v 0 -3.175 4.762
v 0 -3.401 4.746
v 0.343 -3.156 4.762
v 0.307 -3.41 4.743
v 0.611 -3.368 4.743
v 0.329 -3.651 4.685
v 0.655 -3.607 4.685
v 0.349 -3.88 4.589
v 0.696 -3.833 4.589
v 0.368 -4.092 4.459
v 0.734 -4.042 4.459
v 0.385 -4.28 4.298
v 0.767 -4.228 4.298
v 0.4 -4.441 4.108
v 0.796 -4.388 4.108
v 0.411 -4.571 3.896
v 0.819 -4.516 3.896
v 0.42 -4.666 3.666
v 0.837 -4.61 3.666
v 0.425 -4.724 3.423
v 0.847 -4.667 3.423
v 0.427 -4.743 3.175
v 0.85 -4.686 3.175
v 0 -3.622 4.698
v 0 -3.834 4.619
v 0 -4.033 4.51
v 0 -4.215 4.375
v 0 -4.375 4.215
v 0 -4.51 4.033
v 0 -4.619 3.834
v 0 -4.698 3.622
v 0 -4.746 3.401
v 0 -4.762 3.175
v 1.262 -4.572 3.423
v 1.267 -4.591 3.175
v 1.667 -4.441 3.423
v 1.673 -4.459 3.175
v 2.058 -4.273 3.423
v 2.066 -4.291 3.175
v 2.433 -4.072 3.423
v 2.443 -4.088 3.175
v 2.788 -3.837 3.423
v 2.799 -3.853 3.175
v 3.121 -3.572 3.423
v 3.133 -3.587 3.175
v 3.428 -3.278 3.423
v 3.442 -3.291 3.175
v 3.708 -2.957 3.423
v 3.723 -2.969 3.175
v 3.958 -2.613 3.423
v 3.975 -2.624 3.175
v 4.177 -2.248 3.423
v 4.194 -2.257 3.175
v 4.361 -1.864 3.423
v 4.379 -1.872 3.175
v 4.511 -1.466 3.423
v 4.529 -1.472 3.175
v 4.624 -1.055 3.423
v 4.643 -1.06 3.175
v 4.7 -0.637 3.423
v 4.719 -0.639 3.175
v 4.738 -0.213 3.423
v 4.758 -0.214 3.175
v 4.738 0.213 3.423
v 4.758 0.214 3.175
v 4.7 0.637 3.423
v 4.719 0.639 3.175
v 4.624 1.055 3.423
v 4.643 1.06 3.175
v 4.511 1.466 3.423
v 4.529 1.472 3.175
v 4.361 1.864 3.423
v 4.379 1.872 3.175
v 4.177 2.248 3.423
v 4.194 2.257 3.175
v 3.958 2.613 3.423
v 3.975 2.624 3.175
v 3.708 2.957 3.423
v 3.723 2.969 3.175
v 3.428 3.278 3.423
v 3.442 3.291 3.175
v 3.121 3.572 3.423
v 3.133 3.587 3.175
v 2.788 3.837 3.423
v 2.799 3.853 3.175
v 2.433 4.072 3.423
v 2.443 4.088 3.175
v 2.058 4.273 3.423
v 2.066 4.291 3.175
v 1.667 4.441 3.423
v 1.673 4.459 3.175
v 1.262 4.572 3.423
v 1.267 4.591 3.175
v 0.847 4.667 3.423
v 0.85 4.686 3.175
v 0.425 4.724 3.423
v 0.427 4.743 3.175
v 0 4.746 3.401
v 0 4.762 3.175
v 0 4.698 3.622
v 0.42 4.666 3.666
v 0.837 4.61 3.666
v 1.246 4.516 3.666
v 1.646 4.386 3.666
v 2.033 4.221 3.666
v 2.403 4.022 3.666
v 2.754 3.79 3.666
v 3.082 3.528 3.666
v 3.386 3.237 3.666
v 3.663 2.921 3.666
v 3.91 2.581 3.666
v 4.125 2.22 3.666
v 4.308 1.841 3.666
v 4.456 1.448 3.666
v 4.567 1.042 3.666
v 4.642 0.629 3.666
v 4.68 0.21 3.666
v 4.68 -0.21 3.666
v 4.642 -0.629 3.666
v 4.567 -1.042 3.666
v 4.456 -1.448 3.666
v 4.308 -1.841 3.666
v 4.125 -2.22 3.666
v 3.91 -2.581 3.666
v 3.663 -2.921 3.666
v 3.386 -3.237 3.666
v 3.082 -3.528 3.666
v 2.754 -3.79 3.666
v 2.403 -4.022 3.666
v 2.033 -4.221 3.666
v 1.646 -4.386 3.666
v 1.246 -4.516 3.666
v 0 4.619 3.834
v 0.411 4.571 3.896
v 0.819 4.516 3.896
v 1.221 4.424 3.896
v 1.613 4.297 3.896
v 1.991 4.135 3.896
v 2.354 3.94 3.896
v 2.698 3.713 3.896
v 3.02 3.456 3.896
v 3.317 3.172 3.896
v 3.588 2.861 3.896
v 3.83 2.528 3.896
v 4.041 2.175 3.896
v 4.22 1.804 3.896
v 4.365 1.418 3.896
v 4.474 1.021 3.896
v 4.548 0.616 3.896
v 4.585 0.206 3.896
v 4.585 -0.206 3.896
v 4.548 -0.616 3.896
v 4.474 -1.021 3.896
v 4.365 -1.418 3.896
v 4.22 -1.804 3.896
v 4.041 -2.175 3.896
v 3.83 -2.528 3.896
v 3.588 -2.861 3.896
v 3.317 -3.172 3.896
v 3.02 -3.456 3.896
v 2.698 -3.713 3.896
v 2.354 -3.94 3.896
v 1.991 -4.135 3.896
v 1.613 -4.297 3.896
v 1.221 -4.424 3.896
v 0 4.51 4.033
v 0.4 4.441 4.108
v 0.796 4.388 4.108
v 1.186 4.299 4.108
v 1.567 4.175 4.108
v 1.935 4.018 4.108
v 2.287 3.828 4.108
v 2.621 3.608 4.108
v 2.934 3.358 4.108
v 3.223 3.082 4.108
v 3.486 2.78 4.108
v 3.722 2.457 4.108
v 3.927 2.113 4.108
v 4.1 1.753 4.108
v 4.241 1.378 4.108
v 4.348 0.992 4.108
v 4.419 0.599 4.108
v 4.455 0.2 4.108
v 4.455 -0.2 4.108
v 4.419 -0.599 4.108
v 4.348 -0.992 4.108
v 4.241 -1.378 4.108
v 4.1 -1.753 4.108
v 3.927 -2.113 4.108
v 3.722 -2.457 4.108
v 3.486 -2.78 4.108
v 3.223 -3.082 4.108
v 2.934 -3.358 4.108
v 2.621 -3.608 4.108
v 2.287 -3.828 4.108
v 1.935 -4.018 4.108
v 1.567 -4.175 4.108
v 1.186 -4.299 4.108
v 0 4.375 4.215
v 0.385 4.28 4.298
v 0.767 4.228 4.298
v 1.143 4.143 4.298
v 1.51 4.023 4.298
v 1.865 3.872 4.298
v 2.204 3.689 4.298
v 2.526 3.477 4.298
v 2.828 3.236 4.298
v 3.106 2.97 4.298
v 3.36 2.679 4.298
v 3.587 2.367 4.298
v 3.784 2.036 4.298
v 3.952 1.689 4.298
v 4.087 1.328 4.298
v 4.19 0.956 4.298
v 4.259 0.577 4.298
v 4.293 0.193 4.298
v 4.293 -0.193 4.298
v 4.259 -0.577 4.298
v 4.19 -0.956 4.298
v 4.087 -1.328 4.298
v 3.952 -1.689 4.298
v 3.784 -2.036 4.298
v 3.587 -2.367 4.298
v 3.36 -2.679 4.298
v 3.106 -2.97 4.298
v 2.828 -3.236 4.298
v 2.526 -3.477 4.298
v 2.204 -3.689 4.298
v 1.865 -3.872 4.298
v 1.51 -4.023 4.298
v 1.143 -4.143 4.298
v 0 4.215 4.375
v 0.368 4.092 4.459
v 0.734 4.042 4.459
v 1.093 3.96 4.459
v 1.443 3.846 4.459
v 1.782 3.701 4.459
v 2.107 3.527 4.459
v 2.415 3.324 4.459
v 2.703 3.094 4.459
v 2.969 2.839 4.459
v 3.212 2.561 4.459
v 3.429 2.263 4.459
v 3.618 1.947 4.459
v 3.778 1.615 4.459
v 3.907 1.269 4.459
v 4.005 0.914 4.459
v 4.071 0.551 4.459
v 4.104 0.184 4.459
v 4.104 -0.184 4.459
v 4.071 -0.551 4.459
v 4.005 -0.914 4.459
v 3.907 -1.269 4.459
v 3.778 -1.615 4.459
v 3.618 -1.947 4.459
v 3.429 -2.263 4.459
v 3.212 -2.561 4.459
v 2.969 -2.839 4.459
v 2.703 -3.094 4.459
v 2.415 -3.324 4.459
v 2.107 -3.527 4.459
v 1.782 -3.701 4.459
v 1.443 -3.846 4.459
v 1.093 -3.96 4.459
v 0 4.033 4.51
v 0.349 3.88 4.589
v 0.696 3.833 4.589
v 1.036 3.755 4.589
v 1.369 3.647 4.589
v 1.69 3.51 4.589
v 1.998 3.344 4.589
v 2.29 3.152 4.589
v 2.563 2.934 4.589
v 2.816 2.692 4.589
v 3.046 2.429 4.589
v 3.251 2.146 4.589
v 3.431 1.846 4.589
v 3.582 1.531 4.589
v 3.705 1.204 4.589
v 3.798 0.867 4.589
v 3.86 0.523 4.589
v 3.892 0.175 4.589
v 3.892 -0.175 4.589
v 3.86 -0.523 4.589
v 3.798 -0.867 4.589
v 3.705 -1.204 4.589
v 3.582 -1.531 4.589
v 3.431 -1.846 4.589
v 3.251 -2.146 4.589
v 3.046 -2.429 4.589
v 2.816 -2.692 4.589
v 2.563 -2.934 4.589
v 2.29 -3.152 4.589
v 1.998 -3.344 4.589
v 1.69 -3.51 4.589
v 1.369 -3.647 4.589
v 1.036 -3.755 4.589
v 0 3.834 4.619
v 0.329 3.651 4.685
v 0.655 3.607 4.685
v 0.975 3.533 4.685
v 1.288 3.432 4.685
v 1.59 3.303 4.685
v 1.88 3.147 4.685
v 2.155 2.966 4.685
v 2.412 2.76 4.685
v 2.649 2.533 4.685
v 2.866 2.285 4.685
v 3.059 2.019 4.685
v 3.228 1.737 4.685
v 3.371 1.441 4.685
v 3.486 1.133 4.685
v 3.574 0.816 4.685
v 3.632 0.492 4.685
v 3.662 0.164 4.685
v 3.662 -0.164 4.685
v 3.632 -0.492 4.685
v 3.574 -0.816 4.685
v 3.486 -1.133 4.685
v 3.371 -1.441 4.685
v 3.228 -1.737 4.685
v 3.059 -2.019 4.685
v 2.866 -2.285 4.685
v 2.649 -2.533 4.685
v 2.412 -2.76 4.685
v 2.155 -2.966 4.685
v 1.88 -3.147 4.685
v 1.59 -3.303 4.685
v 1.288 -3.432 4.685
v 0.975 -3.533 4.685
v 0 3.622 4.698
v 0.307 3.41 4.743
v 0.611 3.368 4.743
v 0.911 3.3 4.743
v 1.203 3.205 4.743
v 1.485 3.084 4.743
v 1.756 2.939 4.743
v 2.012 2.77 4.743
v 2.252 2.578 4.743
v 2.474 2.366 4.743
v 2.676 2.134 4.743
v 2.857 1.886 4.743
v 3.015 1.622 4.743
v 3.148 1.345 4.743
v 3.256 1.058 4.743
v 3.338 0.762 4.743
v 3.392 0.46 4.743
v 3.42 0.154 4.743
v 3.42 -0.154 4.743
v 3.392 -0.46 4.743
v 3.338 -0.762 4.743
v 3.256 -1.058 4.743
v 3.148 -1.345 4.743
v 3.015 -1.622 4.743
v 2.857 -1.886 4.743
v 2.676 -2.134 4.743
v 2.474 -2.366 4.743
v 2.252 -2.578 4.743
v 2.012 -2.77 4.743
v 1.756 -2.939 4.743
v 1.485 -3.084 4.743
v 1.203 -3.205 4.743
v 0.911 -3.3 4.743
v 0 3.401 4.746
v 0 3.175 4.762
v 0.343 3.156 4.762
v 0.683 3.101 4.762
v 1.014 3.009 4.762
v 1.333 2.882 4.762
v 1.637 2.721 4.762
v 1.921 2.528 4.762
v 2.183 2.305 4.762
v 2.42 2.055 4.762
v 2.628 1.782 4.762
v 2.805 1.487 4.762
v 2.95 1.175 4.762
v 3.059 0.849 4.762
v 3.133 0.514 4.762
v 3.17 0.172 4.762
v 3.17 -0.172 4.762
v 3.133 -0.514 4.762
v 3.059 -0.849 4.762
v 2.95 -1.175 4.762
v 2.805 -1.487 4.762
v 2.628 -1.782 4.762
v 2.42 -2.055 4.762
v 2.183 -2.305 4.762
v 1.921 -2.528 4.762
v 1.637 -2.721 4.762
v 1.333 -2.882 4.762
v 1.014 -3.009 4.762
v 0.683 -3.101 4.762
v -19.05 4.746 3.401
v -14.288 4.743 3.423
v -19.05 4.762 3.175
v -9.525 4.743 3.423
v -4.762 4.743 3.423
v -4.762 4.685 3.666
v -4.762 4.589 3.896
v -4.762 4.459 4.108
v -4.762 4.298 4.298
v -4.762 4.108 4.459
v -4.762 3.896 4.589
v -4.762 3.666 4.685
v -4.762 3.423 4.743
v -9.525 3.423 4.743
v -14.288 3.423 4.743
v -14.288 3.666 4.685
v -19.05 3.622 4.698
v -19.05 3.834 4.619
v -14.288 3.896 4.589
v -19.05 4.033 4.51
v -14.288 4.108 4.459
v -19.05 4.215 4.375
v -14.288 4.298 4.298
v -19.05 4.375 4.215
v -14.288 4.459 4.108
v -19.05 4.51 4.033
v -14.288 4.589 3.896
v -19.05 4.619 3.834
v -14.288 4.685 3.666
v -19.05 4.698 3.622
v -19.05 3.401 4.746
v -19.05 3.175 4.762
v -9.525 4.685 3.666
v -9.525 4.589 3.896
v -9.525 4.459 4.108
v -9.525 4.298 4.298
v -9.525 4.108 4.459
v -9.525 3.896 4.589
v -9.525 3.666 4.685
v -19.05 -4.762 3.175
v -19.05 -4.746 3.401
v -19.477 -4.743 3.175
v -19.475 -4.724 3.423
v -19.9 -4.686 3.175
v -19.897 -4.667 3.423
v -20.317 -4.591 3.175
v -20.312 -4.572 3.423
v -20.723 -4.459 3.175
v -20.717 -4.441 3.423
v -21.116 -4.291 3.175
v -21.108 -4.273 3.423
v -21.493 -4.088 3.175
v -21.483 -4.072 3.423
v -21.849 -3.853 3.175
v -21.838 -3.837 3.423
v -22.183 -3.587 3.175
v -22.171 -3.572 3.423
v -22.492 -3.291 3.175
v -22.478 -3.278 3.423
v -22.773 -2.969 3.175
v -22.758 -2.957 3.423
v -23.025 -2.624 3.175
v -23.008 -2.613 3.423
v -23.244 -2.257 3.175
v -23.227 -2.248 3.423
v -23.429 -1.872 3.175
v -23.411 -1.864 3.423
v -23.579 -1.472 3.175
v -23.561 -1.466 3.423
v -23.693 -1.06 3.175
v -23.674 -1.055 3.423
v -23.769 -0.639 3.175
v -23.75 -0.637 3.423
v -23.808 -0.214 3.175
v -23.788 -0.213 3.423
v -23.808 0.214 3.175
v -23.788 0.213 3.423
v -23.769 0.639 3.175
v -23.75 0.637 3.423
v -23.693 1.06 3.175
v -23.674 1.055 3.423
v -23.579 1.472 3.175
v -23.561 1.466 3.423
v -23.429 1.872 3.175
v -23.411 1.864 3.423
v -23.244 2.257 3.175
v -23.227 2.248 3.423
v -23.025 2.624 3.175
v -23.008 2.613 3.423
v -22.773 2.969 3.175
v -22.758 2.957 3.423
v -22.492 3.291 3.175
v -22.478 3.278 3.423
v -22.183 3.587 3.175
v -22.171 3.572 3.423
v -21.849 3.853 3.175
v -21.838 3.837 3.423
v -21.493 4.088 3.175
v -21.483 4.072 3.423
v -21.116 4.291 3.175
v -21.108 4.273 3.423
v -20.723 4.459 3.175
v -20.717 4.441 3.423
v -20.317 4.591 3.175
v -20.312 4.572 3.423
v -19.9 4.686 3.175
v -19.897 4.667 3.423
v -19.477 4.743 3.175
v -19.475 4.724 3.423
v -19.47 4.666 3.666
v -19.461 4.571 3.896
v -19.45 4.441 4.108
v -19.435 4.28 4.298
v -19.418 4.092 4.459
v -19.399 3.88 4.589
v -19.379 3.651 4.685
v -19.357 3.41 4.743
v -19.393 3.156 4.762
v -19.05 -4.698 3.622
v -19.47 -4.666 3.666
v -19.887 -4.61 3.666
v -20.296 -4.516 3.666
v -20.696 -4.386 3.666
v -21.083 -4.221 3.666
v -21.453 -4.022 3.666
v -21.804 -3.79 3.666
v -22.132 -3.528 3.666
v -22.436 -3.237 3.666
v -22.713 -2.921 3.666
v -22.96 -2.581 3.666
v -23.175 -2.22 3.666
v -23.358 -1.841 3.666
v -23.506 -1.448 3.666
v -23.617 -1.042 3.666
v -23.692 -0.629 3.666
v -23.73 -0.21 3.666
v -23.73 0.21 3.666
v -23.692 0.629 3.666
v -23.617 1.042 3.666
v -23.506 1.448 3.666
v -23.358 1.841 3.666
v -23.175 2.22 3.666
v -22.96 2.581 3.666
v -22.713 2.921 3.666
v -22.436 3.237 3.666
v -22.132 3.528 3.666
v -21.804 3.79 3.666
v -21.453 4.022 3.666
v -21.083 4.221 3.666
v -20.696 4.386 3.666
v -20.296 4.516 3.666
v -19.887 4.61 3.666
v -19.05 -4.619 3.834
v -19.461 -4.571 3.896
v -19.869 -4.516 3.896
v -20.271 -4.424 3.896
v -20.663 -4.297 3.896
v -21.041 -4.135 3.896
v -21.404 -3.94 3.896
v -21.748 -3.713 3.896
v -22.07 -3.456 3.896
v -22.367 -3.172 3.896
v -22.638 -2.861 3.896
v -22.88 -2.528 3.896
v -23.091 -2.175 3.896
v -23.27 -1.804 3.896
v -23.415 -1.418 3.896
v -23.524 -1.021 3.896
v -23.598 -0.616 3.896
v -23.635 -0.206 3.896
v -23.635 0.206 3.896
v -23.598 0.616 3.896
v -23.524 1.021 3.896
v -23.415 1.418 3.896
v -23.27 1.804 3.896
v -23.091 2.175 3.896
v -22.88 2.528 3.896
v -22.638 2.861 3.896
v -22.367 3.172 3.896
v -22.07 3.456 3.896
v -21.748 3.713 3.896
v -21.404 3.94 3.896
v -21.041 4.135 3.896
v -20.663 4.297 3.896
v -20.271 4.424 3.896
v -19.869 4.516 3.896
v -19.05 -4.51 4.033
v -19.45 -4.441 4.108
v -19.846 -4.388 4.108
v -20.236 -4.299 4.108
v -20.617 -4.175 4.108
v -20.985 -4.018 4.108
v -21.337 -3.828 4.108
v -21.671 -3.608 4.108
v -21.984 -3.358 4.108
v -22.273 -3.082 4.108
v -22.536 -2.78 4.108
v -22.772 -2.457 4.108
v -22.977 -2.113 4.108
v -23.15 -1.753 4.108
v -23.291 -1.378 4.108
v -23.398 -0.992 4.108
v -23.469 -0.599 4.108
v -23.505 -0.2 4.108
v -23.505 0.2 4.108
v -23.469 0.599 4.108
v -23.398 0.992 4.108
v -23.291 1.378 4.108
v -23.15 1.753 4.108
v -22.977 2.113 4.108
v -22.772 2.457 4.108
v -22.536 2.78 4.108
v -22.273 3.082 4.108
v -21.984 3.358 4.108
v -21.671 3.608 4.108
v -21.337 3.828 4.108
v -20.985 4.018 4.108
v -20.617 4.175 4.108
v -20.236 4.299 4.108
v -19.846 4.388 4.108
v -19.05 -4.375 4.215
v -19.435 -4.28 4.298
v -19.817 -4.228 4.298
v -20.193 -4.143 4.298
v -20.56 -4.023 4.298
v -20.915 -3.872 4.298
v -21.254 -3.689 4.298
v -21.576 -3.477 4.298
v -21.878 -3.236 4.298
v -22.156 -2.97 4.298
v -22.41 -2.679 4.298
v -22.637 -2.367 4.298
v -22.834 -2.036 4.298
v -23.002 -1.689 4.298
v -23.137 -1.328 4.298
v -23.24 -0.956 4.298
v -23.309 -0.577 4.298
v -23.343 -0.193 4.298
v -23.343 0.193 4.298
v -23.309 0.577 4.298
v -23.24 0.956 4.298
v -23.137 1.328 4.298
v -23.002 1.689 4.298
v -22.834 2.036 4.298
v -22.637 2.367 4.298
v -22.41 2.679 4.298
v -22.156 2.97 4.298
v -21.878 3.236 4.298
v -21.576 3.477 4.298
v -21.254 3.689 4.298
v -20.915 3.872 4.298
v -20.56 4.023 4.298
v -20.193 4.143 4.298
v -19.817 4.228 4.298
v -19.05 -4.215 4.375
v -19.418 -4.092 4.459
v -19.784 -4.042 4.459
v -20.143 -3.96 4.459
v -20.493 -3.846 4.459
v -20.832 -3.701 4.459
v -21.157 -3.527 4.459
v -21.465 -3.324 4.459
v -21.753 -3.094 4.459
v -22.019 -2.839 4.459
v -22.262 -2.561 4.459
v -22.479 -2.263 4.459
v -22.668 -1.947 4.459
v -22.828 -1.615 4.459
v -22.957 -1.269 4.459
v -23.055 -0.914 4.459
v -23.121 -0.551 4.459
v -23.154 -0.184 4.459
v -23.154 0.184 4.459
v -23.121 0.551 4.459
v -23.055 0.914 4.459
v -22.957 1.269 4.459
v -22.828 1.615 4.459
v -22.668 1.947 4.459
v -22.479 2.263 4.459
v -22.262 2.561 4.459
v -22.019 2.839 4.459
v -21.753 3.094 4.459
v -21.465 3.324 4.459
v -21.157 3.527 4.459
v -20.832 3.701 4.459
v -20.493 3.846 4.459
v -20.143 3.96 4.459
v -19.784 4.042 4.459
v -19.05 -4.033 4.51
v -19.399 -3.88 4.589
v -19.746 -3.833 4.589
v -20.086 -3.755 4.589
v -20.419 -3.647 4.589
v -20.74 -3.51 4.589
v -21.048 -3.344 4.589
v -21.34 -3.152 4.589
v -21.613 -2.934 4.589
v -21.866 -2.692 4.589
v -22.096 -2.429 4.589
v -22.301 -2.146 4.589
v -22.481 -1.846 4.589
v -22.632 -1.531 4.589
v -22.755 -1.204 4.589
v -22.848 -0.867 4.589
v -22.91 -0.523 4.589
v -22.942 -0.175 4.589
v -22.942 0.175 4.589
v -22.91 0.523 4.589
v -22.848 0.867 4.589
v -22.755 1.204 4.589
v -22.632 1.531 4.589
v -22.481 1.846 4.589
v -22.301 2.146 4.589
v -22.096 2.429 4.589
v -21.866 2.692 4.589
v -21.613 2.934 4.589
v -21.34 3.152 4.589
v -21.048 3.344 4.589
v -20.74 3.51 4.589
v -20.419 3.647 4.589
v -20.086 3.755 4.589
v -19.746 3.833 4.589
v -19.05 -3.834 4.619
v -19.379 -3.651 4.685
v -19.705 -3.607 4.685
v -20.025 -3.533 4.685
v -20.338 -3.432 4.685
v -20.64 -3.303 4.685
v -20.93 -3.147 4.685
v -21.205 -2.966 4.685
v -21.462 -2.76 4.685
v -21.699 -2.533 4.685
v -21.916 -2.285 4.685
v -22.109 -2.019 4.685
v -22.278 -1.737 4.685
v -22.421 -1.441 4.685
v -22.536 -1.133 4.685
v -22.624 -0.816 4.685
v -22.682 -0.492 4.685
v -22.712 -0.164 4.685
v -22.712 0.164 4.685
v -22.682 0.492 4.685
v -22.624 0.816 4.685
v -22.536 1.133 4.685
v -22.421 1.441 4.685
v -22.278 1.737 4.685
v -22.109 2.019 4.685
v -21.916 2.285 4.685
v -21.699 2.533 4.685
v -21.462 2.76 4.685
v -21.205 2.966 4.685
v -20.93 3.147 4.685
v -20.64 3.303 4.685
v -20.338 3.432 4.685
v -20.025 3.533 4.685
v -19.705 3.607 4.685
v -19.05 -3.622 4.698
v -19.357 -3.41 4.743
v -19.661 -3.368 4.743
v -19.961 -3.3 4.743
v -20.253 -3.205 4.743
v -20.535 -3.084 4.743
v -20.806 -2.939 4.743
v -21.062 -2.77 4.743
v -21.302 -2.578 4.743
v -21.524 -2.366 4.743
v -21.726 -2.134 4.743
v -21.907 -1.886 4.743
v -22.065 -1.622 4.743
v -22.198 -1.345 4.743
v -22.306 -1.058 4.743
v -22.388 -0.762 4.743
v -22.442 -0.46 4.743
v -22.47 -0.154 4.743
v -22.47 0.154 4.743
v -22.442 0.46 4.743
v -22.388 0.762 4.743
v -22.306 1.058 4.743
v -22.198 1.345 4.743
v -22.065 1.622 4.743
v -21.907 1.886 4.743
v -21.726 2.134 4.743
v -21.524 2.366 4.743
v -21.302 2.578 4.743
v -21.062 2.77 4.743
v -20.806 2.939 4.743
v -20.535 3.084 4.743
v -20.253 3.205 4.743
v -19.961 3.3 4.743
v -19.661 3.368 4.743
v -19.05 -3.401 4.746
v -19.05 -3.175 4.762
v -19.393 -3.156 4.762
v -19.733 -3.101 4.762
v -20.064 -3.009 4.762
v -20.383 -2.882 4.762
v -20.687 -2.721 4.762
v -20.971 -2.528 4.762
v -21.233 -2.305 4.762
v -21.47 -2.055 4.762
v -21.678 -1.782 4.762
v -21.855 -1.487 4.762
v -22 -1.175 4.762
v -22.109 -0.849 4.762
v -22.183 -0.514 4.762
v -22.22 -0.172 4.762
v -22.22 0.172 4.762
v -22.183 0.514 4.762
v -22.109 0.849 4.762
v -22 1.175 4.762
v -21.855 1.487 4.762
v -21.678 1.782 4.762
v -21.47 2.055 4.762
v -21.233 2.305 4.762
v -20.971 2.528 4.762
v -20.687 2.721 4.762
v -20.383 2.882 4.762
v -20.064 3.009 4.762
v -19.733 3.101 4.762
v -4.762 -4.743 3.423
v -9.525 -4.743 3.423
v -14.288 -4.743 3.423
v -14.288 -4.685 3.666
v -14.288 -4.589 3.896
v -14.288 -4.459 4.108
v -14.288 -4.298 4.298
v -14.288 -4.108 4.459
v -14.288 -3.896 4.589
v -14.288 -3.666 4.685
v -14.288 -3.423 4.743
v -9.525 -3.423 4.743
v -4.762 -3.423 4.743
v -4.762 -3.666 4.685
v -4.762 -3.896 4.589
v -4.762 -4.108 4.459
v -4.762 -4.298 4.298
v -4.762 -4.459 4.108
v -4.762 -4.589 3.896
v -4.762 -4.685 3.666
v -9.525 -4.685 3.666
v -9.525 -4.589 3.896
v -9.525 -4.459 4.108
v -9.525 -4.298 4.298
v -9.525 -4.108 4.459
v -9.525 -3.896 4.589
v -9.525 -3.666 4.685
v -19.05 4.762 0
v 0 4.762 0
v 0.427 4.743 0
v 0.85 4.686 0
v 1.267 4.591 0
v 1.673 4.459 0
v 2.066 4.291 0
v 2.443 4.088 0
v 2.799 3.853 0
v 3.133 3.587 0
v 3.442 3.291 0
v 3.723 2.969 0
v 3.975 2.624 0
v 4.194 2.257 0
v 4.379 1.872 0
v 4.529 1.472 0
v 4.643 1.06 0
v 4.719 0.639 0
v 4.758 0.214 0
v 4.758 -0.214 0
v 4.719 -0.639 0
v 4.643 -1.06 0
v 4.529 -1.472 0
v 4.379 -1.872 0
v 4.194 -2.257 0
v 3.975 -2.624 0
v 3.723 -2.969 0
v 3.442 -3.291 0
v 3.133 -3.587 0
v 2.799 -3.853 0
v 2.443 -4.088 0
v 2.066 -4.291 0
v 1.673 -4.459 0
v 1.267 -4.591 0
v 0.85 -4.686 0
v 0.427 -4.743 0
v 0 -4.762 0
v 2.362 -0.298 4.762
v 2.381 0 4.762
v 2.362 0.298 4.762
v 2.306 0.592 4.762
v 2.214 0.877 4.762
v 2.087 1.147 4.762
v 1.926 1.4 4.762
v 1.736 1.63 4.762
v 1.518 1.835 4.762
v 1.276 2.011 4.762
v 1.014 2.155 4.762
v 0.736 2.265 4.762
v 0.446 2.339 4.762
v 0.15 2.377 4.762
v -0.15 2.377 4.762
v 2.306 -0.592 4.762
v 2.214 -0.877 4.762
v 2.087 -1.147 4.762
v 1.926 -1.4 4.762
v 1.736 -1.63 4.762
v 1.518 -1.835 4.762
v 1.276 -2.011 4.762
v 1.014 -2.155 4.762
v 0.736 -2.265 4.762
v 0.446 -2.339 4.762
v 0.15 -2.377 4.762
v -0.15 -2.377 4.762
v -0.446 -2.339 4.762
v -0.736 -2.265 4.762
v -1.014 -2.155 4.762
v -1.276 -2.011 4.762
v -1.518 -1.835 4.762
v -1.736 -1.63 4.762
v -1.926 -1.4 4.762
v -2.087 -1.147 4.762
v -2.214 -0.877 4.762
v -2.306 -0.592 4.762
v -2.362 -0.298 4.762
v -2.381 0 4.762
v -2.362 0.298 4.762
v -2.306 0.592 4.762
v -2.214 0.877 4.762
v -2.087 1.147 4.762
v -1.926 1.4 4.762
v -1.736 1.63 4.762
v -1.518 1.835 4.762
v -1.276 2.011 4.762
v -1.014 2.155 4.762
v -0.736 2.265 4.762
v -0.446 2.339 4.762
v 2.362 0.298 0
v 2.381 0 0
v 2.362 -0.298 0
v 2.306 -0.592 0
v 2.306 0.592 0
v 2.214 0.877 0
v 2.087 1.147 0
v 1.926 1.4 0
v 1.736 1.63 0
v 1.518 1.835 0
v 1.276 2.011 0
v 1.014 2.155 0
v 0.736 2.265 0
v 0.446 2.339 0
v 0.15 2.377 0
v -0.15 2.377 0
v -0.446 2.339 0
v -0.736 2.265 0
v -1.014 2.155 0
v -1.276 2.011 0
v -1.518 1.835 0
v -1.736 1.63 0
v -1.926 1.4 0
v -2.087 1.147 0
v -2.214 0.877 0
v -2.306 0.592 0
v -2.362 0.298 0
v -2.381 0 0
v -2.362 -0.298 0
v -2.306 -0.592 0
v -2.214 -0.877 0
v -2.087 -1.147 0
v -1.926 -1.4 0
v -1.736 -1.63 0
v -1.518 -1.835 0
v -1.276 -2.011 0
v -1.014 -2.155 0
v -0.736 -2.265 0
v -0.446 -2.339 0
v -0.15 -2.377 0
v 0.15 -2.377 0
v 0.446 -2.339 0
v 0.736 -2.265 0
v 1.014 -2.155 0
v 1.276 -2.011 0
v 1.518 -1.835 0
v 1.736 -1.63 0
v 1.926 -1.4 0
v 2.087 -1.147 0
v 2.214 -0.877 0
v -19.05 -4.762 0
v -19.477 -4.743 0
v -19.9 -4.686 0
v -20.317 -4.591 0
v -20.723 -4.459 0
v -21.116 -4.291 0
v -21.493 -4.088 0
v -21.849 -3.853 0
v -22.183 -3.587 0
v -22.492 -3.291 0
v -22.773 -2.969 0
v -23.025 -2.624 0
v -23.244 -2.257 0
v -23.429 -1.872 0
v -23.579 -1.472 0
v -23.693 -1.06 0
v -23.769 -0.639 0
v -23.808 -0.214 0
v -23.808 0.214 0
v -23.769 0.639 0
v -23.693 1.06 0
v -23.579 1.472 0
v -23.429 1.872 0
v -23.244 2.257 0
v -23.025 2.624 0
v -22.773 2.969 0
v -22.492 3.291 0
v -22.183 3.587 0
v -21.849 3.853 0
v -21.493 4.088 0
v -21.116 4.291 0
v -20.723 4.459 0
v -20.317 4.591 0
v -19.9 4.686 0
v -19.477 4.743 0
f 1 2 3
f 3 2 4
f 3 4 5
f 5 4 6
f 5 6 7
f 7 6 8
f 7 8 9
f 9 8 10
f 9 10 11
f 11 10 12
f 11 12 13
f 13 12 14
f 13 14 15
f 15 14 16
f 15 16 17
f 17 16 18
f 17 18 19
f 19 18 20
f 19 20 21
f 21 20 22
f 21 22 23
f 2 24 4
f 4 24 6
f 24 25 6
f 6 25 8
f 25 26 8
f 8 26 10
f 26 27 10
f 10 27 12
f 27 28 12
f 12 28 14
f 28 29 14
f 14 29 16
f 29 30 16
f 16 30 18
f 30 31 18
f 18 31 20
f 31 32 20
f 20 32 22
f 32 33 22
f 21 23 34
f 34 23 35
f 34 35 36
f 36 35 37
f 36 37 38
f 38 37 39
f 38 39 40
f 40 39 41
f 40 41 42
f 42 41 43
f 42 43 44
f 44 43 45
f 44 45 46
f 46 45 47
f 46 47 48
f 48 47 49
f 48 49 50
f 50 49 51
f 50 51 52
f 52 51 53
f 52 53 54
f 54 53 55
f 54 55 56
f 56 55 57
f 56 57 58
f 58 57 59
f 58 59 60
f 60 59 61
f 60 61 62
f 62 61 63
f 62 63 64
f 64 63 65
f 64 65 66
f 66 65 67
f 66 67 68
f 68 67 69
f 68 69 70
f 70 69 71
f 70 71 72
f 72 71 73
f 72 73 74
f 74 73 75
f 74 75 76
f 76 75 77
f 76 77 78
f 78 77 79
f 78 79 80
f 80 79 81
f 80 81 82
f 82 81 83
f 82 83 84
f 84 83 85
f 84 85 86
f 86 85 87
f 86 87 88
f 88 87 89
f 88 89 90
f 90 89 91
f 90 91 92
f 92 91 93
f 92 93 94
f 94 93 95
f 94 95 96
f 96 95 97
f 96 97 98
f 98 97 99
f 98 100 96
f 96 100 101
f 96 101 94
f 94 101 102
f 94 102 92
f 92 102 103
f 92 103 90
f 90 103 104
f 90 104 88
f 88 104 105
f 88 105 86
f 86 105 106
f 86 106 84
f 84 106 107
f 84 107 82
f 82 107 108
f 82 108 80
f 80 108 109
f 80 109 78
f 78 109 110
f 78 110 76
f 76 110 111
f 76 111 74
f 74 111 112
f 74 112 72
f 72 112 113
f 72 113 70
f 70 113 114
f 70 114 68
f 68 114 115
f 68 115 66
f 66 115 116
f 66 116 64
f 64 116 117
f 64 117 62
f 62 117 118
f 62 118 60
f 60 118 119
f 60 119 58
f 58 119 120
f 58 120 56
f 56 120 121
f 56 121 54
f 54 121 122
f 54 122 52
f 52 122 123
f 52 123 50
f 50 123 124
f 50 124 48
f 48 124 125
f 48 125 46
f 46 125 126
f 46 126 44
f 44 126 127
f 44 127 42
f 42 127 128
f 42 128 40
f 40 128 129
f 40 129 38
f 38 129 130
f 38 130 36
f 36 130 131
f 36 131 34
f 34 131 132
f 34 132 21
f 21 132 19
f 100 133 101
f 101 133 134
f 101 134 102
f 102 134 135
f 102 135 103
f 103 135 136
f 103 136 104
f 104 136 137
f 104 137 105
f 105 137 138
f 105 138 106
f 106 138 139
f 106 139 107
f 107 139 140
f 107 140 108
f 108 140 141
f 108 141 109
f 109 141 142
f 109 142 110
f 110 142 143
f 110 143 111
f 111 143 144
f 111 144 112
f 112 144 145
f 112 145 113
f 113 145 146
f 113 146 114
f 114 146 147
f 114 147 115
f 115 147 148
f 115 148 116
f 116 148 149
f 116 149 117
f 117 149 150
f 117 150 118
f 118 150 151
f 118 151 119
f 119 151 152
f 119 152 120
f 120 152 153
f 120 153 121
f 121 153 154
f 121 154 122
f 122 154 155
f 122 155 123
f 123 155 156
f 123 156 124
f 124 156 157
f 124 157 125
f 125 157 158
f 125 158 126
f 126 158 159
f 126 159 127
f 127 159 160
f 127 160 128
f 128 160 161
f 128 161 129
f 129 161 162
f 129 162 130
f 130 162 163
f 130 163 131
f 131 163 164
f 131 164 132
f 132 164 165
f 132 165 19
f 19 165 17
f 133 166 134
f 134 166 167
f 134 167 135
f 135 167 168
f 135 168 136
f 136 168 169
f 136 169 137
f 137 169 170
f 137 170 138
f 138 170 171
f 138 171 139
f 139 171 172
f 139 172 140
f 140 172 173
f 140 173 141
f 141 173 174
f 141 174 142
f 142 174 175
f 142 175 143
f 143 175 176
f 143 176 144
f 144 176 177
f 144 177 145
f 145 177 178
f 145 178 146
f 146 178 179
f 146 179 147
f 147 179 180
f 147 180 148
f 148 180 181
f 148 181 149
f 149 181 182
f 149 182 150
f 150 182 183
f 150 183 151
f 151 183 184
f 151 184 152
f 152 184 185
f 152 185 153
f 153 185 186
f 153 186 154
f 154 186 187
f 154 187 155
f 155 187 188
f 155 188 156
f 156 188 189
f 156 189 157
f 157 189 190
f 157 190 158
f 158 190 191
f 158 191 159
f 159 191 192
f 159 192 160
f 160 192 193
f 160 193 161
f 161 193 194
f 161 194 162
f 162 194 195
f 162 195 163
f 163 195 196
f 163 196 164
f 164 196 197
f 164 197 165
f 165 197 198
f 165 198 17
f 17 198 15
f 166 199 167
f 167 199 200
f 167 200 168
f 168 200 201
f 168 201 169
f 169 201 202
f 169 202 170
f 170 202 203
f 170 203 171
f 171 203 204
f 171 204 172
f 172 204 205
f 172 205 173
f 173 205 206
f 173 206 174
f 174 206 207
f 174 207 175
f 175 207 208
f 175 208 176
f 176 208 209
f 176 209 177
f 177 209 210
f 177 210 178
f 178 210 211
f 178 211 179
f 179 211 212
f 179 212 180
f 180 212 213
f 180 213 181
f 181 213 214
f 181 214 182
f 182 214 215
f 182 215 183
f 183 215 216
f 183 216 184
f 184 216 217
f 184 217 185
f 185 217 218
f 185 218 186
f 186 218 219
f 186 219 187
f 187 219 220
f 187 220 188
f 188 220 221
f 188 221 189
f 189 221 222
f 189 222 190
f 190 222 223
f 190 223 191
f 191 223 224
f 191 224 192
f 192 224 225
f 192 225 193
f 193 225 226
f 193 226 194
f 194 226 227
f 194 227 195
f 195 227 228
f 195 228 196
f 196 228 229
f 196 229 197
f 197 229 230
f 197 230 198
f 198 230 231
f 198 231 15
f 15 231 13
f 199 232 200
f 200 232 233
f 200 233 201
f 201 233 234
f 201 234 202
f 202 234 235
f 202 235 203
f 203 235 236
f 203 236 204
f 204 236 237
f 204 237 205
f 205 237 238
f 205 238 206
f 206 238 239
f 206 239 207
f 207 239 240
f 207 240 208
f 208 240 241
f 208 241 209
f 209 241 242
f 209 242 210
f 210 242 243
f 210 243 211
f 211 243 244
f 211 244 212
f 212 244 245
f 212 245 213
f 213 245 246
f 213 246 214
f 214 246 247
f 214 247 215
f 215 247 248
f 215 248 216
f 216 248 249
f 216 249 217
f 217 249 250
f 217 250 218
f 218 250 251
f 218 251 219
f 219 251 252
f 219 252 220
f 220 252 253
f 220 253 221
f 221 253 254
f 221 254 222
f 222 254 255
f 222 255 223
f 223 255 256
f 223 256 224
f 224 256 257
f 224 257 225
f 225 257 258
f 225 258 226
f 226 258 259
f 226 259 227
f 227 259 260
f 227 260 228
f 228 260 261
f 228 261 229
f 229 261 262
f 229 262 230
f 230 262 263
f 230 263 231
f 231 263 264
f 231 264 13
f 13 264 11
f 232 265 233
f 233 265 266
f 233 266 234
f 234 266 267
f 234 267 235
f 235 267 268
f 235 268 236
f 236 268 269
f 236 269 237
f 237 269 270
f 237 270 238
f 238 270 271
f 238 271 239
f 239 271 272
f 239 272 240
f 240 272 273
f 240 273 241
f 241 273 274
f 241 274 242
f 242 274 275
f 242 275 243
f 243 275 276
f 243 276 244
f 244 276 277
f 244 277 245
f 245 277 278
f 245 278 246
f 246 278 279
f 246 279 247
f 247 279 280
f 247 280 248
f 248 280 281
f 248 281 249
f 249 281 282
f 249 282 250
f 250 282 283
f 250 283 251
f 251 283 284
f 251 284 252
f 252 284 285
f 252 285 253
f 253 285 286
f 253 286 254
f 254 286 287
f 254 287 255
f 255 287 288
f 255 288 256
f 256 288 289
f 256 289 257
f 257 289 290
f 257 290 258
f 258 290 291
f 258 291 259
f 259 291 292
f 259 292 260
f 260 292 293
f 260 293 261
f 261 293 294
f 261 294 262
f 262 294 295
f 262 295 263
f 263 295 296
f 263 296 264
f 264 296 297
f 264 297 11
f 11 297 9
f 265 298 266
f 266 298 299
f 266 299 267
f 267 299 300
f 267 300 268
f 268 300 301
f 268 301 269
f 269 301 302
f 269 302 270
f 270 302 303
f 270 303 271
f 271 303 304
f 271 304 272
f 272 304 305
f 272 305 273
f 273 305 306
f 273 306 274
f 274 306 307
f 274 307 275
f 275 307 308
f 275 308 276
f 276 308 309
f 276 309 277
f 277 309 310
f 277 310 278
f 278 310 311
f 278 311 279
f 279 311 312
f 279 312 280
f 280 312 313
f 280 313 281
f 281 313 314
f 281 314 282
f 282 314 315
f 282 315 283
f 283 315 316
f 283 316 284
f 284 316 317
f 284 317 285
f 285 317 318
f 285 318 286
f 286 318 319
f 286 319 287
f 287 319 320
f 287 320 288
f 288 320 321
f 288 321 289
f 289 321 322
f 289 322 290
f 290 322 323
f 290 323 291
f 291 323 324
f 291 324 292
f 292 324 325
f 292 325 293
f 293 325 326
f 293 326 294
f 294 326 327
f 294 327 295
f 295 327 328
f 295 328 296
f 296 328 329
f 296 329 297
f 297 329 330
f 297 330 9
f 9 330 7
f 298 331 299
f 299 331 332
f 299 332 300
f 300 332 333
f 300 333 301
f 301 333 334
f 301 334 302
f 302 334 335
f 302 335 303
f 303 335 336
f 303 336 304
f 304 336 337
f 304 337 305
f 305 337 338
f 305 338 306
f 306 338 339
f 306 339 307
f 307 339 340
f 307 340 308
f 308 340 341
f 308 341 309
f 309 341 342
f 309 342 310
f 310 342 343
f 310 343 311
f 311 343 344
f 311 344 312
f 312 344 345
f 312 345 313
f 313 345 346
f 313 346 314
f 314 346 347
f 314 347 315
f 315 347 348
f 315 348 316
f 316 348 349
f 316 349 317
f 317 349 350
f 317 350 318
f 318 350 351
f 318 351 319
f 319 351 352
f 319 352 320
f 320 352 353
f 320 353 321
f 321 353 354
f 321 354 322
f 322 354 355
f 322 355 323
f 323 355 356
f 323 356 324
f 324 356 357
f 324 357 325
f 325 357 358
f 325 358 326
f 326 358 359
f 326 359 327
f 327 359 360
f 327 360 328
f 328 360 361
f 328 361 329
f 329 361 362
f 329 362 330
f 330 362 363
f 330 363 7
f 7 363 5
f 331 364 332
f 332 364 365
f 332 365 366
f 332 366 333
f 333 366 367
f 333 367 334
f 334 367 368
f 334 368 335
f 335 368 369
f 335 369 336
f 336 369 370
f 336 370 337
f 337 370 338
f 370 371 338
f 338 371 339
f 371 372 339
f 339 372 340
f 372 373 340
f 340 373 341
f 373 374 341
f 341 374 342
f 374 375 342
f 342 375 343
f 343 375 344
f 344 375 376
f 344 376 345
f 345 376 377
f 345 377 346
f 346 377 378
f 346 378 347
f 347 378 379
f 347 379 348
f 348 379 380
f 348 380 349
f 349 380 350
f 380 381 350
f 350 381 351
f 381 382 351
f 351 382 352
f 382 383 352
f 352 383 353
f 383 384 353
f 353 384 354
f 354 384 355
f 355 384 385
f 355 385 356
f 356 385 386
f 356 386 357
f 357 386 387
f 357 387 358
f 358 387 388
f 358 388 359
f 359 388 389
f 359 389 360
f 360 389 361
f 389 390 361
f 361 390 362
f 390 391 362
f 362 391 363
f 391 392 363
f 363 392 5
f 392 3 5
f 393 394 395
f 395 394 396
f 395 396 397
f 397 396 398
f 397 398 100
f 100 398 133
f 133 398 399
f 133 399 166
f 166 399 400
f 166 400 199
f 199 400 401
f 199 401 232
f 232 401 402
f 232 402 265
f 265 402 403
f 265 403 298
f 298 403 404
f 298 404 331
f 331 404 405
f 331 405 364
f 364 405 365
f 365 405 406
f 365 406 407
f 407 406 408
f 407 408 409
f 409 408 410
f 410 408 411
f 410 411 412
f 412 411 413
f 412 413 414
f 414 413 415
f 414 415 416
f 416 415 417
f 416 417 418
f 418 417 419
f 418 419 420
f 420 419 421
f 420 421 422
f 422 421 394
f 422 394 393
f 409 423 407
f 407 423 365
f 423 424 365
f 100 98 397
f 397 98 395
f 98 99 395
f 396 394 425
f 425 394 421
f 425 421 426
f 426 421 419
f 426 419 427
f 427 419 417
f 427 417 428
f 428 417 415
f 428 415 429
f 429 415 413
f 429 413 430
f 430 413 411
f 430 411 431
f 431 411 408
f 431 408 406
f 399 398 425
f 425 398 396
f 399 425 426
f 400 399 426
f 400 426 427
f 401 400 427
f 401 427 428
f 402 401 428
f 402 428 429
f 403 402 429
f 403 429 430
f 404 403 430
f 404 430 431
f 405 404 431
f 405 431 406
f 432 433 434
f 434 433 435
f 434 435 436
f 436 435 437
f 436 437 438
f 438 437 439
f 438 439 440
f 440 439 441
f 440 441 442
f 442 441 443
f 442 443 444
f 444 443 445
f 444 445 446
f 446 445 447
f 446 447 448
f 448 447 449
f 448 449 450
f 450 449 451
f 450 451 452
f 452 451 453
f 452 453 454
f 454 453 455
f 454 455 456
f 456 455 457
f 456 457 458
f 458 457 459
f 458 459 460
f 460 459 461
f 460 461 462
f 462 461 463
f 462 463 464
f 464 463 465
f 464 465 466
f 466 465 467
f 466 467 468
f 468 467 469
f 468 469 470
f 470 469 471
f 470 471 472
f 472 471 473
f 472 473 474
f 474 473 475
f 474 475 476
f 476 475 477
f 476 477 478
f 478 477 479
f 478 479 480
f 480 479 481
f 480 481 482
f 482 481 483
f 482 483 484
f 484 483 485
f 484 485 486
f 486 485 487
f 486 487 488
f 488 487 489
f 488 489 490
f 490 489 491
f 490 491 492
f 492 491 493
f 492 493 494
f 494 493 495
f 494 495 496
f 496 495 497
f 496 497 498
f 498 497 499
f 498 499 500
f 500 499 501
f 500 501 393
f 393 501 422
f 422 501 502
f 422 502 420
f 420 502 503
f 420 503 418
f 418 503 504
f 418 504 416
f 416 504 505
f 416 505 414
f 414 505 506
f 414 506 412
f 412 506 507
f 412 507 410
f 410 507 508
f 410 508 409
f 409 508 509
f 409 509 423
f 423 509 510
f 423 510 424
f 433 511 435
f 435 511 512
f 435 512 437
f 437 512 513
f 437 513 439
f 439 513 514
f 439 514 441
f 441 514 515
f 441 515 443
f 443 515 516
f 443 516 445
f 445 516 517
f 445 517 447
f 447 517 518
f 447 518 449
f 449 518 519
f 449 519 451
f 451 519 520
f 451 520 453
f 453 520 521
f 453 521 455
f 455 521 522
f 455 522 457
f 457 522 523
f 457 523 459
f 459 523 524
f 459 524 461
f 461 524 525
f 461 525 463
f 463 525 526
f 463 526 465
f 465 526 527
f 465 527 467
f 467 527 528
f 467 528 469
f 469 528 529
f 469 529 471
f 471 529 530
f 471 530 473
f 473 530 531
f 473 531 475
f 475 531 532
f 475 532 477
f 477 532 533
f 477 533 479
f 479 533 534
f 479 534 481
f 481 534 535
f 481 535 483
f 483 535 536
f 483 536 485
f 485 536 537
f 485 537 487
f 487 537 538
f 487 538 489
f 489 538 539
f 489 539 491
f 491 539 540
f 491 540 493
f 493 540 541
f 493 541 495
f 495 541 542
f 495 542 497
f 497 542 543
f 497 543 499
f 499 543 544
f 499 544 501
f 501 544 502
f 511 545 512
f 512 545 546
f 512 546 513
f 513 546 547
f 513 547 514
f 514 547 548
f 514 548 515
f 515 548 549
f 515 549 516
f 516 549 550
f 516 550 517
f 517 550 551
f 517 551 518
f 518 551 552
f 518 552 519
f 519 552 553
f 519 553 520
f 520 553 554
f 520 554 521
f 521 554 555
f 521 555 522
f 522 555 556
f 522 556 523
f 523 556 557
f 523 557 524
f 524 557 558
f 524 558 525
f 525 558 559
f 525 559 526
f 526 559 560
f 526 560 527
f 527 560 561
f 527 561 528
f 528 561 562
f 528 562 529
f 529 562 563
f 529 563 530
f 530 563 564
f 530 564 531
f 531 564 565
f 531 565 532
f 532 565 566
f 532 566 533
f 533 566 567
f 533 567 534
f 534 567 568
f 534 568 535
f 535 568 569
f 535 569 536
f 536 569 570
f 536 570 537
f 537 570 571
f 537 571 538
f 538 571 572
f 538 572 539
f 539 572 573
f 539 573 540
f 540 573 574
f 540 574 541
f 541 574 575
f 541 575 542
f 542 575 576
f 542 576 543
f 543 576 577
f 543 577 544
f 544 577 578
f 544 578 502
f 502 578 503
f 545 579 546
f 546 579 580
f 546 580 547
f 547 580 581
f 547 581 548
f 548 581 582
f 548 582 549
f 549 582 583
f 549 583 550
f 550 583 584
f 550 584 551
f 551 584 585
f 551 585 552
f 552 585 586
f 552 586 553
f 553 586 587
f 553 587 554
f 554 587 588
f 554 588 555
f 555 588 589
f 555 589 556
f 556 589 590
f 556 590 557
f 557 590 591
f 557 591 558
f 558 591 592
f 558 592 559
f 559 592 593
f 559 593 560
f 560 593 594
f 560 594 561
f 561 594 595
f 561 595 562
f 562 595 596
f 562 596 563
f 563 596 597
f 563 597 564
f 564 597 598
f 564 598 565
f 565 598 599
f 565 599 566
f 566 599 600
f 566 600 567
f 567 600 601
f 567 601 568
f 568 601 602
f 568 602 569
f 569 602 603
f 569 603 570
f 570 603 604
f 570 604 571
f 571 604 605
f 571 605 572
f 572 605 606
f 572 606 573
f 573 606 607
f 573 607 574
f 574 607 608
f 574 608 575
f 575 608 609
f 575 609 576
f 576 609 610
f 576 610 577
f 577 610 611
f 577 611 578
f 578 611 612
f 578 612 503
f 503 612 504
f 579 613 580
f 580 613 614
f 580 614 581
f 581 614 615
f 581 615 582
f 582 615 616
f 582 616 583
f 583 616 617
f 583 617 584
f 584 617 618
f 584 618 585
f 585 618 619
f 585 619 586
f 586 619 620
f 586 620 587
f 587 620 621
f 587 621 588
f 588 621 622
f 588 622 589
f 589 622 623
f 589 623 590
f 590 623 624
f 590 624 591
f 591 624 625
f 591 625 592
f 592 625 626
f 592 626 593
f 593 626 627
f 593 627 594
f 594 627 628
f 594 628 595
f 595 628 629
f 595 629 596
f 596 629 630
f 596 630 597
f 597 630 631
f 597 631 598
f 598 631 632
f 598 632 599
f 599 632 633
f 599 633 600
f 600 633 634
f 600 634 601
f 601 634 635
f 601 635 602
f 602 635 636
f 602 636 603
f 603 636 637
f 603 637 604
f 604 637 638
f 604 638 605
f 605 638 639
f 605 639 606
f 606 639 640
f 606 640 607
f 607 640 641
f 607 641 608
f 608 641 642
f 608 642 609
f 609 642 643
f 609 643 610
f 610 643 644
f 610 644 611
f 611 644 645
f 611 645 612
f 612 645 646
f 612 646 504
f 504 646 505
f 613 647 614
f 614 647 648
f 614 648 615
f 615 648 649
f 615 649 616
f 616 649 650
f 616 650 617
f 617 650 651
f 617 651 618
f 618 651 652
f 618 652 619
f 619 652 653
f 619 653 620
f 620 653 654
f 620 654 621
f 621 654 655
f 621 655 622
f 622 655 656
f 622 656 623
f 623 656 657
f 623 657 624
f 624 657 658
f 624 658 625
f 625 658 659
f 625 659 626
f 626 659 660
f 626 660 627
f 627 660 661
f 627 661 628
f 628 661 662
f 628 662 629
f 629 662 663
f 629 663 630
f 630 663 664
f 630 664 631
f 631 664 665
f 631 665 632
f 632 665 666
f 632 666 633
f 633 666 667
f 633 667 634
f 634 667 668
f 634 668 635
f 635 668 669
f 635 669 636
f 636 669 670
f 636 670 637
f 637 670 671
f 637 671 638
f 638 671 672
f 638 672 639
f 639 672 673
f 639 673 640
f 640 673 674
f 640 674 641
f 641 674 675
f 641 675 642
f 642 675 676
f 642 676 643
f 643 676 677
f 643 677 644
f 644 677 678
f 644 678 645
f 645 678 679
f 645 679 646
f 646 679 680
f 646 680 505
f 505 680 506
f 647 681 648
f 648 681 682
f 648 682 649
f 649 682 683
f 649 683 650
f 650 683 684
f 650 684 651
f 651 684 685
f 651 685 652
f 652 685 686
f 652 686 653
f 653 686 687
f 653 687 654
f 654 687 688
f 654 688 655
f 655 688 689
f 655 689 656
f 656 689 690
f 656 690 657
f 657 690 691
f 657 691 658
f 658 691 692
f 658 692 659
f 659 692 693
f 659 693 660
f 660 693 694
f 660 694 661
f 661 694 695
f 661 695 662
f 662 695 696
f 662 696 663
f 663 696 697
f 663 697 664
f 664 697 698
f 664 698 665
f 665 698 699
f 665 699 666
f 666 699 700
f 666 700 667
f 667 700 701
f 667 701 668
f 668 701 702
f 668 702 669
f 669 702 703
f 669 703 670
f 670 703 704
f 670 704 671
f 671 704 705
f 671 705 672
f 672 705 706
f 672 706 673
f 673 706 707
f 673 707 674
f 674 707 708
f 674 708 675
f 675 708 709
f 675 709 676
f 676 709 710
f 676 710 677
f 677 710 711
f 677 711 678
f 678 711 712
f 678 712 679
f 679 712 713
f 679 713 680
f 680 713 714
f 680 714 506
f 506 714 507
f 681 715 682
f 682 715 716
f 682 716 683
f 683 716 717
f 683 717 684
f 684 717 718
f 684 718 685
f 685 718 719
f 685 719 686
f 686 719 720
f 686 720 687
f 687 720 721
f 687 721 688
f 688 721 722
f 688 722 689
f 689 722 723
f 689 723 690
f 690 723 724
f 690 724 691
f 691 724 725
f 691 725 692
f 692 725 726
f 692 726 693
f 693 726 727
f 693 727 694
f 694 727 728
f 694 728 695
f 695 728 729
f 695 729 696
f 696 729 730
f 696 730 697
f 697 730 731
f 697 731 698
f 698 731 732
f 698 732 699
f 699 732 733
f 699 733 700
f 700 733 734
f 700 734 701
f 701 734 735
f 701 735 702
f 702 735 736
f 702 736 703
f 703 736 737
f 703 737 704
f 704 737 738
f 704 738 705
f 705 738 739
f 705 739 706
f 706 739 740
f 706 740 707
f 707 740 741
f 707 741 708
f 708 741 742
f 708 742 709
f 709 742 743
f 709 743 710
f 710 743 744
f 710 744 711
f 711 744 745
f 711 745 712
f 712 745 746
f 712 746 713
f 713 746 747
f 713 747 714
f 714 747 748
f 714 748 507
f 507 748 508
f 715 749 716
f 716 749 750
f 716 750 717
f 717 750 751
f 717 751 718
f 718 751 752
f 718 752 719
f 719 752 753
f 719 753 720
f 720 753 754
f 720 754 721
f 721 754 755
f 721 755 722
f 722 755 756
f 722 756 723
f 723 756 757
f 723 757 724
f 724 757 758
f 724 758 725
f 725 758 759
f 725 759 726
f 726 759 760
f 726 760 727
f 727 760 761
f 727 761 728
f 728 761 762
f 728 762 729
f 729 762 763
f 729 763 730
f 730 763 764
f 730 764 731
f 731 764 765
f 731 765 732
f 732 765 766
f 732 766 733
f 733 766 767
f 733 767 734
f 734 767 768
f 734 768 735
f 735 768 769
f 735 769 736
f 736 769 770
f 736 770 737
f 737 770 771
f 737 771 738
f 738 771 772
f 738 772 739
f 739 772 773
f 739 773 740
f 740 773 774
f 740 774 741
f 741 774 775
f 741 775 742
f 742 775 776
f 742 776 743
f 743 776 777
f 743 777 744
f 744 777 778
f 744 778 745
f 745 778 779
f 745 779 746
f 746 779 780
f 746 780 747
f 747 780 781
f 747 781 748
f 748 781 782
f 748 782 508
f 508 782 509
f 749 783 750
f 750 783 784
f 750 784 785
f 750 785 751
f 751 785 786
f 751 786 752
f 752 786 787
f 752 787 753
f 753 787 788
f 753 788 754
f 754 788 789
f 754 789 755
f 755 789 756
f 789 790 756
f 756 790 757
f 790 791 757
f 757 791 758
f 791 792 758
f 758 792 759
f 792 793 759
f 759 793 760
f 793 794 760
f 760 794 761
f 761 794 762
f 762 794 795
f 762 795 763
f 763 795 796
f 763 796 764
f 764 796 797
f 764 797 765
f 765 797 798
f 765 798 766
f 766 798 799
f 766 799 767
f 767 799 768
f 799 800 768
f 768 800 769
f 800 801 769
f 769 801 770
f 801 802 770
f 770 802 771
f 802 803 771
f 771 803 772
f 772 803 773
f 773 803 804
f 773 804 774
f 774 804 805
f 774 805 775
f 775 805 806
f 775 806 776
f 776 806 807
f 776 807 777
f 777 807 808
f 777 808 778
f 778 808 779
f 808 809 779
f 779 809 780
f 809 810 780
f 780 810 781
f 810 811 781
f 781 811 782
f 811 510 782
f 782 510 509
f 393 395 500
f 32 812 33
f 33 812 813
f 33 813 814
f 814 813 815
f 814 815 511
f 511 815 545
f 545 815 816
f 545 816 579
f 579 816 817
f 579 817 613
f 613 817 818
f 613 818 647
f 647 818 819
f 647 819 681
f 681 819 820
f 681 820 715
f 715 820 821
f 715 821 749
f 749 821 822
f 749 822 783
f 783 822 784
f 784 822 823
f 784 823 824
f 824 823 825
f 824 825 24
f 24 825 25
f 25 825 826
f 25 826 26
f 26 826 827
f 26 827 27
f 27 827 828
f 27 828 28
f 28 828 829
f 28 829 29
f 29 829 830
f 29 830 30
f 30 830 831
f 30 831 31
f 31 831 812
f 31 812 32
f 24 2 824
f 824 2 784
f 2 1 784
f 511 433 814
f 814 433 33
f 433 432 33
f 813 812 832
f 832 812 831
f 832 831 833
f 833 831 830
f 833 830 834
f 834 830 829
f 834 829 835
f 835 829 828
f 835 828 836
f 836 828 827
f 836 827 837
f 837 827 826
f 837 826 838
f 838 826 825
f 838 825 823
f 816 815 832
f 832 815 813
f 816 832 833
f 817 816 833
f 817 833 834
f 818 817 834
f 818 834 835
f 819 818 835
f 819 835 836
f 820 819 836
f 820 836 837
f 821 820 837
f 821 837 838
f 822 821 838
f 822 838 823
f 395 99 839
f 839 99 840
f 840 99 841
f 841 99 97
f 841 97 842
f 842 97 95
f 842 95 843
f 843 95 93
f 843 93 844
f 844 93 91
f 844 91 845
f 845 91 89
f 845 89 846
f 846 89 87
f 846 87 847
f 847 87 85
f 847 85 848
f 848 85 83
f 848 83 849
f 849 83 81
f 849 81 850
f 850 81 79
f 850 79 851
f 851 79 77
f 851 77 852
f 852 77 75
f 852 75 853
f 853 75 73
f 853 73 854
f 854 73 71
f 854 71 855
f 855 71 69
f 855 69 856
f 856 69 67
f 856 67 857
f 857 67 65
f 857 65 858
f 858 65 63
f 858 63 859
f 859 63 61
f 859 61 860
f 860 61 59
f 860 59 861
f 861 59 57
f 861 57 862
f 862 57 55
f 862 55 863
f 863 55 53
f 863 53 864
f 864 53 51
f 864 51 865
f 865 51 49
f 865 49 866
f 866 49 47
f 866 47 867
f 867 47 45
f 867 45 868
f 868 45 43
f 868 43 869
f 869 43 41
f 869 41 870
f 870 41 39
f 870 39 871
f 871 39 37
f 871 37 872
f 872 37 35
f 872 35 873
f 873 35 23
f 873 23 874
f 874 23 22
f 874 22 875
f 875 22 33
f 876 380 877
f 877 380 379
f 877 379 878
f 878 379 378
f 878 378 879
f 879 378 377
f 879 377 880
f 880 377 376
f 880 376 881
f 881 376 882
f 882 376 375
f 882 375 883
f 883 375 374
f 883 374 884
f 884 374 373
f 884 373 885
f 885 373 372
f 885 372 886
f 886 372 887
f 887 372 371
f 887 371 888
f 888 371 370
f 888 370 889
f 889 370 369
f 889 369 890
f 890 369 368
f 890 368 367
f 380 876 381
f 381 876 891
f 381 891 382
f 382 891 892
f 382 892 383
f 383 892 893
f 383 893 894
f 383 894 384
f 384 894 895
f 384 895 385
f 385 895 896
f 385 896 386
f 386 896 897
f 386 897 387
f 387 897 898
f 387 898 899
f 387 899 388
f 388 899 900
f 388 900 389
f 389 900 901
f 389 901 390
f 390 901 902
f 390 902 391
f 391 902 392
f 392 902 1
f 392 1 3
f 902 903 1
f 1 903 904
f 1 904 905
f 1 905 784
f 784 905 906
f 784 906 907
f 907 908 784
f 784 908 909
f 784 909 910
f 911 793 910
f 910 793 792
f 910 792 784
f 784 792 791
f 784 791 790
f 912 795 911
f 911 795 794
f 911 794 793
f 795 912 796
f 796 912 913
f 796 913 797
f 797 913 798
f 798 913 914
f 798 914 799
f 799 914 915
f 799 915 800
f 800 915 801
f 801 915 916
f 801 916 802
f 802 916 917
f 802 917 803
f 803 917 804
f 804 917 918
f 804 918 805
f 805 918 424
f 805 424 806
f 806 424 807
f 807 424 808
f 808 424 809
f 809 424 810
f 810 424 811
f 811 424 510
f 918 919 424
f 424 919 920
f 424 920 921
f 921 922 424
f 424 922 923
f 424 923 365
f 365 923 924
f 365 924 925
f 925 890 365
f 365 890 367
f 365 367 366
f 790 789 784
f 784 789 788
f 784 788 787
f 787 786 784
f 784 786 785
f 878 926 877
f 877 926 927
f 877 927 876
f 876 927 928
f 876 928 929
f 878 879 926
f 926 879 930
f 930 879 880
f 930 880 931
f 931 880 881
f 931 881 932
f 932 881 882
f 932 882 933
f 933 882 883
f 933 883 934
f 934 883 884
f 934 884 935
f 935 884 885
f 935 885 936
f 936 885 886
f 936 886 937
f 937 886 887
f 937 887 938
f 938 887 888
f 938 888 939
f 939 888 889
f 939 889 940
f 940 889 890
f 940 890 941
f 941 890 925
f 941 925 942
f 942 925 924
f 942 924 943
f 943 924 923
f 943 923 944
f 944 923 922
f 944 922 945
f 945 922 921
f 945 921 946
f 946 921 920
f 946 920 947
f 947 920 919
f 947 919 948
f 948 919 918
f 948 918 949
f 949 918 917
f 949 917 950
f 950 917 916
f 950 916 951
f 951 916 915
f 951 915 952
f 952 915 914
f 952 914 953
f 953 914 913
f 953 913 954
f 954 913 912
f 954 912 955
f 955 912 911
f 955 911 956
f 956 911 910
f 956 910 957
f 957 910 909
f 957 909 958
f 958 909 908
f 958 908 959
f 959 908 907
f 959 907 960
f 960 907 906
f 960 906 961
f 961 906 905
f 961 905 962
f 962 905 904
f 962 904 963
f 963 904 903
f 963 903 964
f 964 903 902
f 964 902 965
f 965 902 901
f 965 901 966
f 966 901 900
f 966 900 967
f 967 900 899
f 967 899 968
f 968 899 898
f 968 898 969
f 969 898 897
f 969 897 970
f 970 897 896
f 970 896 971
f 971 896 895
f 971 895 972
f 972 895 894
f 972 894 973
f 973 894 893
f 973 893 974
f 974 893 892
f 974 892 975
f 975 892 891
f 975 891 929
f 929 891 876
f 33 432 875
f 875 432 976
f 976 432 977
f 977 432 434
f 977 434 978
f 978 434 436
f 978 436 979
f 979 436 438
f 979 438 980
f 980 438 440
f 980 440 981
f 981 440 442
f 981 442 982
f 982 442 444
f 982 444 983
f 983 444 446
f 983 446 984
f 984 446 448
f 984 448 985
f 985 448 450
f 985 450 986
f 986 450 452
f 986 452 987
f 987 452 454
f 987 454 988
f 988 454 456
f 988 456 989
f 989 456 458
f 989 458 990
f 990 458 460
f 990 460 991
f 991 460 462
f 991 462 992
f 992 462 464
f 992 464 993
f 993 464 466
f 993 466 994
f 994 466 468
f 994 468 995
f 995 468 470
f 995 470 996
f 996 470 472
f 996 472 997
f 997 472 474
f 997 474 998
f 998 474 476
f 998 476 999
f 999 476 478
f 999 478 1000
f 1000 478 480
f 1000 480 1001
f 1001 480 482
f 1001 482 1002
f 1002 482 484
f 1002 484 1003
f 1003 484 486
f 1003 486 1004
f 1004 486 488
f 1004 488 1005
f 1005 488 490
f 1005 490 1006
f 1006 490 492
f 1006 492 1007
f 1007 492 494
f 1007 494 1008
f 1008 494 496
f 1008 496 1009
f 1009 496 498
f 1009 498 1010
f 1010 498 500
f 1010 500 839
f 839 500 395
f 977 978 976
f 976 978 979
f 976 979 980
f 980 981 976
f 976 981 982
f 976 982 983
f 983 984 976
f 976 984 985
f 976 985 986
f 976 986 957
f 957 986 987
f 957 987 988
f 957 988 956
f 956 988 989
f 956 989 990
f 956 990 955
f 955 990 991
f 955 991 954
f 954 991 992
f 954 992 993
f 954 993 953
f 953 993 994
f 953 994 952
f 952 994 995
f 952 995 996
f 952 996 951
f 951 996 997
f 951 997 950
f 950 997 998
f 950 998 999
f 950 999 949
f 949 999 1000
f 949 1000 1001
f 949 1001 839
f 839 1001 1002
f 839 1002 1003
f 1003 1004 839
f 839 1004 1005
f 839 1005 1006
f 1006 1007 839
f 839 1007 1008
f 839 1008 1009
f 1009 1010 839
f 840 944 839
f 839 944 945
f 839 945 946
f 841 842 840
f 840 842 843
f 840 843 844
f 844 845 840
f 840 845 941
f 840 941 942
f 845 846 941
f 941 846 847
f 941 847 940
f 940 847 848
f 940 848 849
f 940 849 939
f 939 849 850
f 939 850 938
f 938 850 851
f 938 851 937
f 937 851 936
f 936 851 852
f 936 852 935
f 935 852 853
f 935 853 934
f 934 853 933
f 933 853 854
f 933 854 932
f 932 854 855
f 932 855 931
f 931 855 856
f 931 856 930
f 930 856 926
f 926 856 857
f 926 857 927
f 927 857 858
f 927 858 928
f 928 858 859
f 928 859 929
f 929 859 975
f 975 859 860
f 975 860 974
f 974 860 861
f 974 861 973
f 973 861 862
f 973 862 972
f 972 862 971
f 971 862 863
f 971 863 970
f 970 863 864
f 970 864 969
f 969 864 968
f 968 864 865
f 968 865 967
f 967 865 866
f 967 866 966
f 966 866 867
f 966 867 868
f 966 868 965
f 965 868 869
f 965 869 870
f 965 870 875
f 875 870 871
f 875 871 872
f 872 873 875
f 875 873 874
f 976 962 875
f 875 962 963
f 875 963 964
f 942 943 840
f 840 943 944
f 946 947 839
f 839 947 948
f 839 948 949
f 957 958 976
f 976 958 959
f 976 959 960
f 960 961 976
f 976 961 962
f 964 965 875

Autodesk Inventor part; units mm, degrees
ref_plane "YZ Plane" through (0, 0, 0) normal (1, 0, 0) x (0, 1, 0)
ref_plane "XZ Plane" through (0, 0, 0) normal (0, 1, 0) x (-1, 0, 0)
ref_plane "XY Plane" through (0, 0, 0) normal (0, 0, 1) x (1, 0, 0)
sketch "Sketch1" plane through (0, 0, 0) normal (0, 0, 1) x (1, 0, 0)
  circle A0 centre (0, 0) radius 2.3813
  line L0 (0, 0) -> (-19.05, 0) construction
  line L1 (0, 4.7625) -> (-19.05, 4.7625)
  line L2 (-19.05, -4.7625) -> (0, -4.7625)
  arc A1 (0, -4.7625) -> (0, 4.7625) centre (0, 0) ccw
  arc A2 (-19.05, 4.7625) -> (-19.05, -4.7625) centre (-19.05, 0) ccw
  point P0 (-9.525, 0)
  dimension "d0" = 4.7625
  dimension "d2" = 19.05
  dimension "d3" = 9.525
extrude "Extrusion1" add sketch "Sketch1" along normal blind 4.7625
fillet "Fillet1" radius 1.5875 4 edges at (4.7625, 0, 4.7625) (-9.525, 4.7625, 4.7625) (-23.8125, 0, 4.7625) (-9.525, -4.7625, 4.7625)
properties part number "Stands"
